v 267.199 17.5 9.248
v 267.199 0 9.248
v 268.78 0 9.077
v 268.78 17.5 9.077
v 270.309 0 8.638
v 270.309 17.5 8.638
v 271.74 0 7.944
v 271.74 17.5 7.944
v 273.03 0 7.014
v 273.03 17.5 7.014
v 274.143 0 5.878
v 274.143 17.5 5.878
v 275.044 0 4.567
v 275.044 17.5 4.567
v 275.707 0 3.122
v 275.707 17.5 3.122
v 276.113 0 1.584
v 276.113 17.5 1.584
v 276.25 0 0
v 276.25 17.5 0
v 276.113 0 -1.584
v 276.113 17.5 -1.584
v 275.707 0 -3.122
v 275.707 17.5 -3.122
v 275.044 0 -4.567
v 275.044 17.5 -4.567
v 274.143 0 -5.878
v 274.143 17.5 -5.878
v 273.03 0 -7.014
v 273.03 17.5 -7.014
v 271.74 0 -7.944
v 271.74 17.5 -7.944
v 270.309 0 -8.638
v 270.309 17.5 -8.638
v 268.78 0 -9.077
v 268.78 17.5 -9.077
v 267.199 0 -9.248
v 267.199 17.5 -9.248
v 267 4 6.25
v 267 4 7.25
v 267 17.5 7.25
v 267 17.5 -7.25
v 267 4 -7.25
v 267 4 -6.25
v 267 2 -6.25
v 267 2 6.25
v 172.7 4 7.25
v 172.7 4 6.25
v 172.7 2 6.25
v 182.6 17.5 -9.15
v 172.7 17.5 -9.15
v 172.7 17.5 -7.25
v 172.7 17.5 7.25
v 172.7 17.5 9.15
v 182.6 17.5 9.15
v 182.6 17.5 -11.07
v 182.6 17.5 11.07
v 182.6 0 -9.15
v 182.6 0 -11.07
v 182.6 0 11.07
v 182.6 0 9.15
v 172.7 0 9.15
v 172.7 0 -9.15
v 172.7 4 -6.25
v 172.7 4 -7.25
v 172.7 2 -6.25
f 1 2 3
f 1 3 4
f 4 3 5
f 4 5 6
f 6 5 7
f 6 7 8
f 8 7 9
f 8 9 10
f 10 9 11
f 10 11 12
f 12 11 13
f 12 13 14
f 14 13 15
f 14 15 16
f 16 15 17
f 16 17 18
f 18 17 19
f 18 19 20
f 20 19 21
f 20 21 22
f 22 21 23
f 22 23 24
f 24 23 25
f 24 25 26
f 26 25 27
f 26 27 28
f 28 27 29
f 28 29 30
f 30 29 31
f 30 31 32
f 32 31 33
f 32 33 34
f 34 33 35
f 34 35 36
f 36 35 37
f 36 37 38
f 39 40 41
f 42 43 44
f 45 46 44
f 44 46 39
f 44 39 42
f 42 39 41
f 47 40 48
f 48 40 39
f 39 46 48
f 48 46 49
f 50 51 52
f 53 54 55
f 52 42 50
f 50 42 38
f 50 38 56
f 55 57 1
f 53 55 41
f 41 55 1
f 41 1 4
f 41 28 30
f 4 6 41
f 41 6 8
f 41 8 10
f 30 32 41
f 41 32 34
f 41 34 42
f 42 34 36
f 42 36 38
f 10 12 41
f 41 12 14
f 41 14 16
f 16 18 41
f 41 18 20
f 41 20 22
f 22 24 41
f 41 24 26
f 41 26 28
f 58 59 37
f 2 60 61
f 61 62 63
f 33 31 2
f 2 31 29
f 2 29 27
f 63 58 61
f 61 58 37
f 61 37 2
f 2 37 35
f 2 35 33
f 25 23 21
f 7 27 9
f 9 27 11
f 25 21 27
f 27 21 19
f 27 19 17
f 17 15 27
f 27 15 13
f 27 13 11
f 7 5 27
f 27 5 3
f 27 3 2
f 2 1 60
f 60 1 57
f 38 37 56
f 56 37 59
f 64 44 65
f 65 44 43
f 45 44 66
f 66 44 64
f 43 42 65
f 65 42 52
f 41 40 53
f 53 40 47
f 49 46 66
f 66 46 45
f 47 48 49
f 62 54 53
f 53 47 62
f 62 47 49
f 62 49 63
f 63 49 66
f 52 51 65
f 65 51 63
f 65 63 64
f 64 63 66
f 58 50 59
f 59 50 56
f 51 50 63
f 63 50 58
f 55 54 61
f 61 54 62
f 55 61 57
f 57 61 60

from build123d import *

# Parameters (mm, degrees)
BOSS_EXTRUDE1_DEPTH     = 17.5
SKETCH2_W               = 252
SKETCH2_H               = 14.5
CUT_EXTRUDE1_DEPTH      = 15.5
SKETCH3_R               = 13
CUT_EXTRUDE2_DEPTH      = 15.5
CUT_EXTRUDE3_REACH      = 264.265
CUT_EXTRUDE3_END_RADIUS = 13
SKETCH5_W               = 252
SKETCH5_H               = 1
BOSS_EXTRUDE2_DEPTH     = 2
SKETCH6_R               = 1
CUT_EXTRUDE4_DEPTH      = 2
CUT_EXTRUDE9_DEPTH      = 278.209870862


with BuildPart() as part:
    # Sketch1 → Boss-Extrude1 (new body)
    with BuildSketch(Plane(origin=(0, 0, 0), x_dir=(1, 0, 0), z_dir=(0, 1, 0))):
        with BuildLine():
            Line((0.323033708, 14.996521237), (267.19920412, 9.247854763))
            ThreePointArc((267.19920412, 9.247854763), (276.25, 0), (267.19920412, -9.247854763))
            Line((267.19920412, -9.247854763), (0.323033708, -14.996521237))
            ThreePointArc((0.323033708, -14.996521237), (-15, 0), (0.323033708, 14.996521237))
        make_face()
    extrude(amount=BOSS_EXTRUDE1_DEPTH)

    # Sketch2 → Cut-Extrude1 (cut)
    with BuildSketch(Plane(origin=(0, 17.5, 0), x_dir=(1, 0, 0), z_dir=(0, 1, 0))):
        with Locations((141, 0)):
            Rectangle(SKETCH2_W, SKETCH2_H)
    extrude(amount=-CUT_EXTRUDE1_DEPTH, mode=Mode.SUBTRACT)

    # Sketch3 → Cut-Extrude2 (cut)
    with BuildSketch(Plane(origin=(0, 17.5, 0), x_dir=(1, 0, 0), z_dir=(0, 1, 0))):
        with Locations(Location((0, 0, 0), (0, 0, 270))):
            Circle(SKETCH3_R)
    extrude(amount=-CUT_EXTRUDE2_DEPTH, mode=Mode.SUBTRACT)

    # Cut-Extrude3: up to this cylinder (the profile starts outside it)
    cut_extrude3_end = Plane(origin=(0, 8.125709, 0), z_dir=(0, 1, 0)) * Cylinder(CUT_EXTRUDE3_END_RADIUS, 555.53, mode=Mode.PRIVATE)
    # Sketch4 → Cut-Extrude3 (cut, up to the surface)
    with BuildSketch(Plane(origin=(15, 0, 0), x_dir=(0, 0, -1), z_dir=(1, 0, 0)), mode=Mode.PRIVATE) as cut_extrude3_sk1:
        with BuildLine():
            Line((-7.25, 2), (7.25, 2))
            Line((7.25, 2), (7.25, 8.5))
            ThreePointArc((7.25, 8.5), (5.199747468, 13.449747468), (0.25, 15.5))
            Line((0.25, 15.5), (-0.25, 15.5))
            ThreePointArc((-0.25, 15.5), (-5.199747468, 13.449747468), (-7.25, 8.5))
            Line((-7.25, 8.5), (-7.25, 2))
        make_face()
    cut_extrude3_tool1 = extrude(cut_extrude3_sk1.sketch, amount=-CUT_EXTRUDE3_REACH, mode=Mode.PRIVATE) - cut_extrude3_end
    add(cut_extrude3_tool1.solids().sort_by_distance((15, 8.125709, 0))[0], mode=Mode.SUBTRACT)

    # Sketch5 → Boss-Extrude2 (add)
    with BuildSketch(Plane(origin=(0, 2, 0), x_dir=(1, 0, 0), z_dir=(0, 1, 0))):
        with Locations((141, 6.75)):
            Rectangle(SKETCH5_W, SKETCH5_H)
        with Locations((141, -6.75)):
            Rectangle(SKETCH5_W, SKETCH5_H)
    extrude(amount=BOSS_EXTRUDE2_DEPTH)

    # Sketch6 → Cut-Extrude4 (cut)
    with BuildSketch(Plane(origin=(0, 2, 0), x_dir=(1, 0, 0), z_dir=(0, 1, 0))):
        with Locations(Location((-5.25, 9.09326674, 0), (0, 0, 270))):
            Circle(SKETCH6_R)
        with Locations(Location((-10.5, 0, 0), (0, 0, 270))):
            Circle(SKETCH6_R)
        with Locations(Location((5.25, 9.09326674, 0), (0, 0, 270))):
            Circle(SKETCH6_R)
        with Locations(Location((10.5, 0, 0), (0, 0, 270))):
            Circle(SKETCH6_R)
        with Locations(Location((5.25, -9.09326674, 0), (0, 0, 270))):
            Circle(SKETCH6_R)
        with Locations(Location((-5.25, -9.09326674, 0), (0, 0, 270))):
            Circle(SKETCH6_R)
        Polygon((0, -10), (8.660254038, -5), (8.660254038, 5), (0, 10), (-8.660254038, 5), (-8.660254038, -5), align=None)
    extrude(amount=-CUT_EXTRUDE4_DEPTH, mode=Mode.SUBTRACT)

    # Sketch14 → Cut-Extrude9 (cut, through all)
    with BuildSketch(Plane(origin=(0, 0, 0), x_dir=(1, 0, 0), z_dir=(0, 1, 0))):
        Polygon((88.5, 9.35), (78.6, 9.35), (78.6, 35), (78.4, 35), (78.4, 9.15), (88.3, 9.15), (88.3, -9.15), (78.4, -9.15), (78.4, -35), (78.6, -35), (78.6, -9.35), (88.5, -9.35), align=None)
        Polygon((172.7, 9.15), (182.6, 9.15), (182.6, 35), (182.4, 35), (182.4, 9.35), (172.5, 9.35), (172.5, 9.25), (172.5, -9.35), (182.4, -9.35), (182.4, -35), (182.6, -35), (182.6, -9.15), (172.7, -9.15), align=None)
    extrude(amount=CUT_EXTRUDE9_DEPTH, mode=Mode.SUBTRACT)


with BuildPart() as cut_extrude9_kept_piece:
    # of the separate pieces the step leaves, the one the design keeps (cut_extrude9_pieces_kept)
    add(part.part.solids().sort_by_distance((267.19920412, 0, 9.247854763))[0])


solid = cut_extrude9_kept_piece.part
